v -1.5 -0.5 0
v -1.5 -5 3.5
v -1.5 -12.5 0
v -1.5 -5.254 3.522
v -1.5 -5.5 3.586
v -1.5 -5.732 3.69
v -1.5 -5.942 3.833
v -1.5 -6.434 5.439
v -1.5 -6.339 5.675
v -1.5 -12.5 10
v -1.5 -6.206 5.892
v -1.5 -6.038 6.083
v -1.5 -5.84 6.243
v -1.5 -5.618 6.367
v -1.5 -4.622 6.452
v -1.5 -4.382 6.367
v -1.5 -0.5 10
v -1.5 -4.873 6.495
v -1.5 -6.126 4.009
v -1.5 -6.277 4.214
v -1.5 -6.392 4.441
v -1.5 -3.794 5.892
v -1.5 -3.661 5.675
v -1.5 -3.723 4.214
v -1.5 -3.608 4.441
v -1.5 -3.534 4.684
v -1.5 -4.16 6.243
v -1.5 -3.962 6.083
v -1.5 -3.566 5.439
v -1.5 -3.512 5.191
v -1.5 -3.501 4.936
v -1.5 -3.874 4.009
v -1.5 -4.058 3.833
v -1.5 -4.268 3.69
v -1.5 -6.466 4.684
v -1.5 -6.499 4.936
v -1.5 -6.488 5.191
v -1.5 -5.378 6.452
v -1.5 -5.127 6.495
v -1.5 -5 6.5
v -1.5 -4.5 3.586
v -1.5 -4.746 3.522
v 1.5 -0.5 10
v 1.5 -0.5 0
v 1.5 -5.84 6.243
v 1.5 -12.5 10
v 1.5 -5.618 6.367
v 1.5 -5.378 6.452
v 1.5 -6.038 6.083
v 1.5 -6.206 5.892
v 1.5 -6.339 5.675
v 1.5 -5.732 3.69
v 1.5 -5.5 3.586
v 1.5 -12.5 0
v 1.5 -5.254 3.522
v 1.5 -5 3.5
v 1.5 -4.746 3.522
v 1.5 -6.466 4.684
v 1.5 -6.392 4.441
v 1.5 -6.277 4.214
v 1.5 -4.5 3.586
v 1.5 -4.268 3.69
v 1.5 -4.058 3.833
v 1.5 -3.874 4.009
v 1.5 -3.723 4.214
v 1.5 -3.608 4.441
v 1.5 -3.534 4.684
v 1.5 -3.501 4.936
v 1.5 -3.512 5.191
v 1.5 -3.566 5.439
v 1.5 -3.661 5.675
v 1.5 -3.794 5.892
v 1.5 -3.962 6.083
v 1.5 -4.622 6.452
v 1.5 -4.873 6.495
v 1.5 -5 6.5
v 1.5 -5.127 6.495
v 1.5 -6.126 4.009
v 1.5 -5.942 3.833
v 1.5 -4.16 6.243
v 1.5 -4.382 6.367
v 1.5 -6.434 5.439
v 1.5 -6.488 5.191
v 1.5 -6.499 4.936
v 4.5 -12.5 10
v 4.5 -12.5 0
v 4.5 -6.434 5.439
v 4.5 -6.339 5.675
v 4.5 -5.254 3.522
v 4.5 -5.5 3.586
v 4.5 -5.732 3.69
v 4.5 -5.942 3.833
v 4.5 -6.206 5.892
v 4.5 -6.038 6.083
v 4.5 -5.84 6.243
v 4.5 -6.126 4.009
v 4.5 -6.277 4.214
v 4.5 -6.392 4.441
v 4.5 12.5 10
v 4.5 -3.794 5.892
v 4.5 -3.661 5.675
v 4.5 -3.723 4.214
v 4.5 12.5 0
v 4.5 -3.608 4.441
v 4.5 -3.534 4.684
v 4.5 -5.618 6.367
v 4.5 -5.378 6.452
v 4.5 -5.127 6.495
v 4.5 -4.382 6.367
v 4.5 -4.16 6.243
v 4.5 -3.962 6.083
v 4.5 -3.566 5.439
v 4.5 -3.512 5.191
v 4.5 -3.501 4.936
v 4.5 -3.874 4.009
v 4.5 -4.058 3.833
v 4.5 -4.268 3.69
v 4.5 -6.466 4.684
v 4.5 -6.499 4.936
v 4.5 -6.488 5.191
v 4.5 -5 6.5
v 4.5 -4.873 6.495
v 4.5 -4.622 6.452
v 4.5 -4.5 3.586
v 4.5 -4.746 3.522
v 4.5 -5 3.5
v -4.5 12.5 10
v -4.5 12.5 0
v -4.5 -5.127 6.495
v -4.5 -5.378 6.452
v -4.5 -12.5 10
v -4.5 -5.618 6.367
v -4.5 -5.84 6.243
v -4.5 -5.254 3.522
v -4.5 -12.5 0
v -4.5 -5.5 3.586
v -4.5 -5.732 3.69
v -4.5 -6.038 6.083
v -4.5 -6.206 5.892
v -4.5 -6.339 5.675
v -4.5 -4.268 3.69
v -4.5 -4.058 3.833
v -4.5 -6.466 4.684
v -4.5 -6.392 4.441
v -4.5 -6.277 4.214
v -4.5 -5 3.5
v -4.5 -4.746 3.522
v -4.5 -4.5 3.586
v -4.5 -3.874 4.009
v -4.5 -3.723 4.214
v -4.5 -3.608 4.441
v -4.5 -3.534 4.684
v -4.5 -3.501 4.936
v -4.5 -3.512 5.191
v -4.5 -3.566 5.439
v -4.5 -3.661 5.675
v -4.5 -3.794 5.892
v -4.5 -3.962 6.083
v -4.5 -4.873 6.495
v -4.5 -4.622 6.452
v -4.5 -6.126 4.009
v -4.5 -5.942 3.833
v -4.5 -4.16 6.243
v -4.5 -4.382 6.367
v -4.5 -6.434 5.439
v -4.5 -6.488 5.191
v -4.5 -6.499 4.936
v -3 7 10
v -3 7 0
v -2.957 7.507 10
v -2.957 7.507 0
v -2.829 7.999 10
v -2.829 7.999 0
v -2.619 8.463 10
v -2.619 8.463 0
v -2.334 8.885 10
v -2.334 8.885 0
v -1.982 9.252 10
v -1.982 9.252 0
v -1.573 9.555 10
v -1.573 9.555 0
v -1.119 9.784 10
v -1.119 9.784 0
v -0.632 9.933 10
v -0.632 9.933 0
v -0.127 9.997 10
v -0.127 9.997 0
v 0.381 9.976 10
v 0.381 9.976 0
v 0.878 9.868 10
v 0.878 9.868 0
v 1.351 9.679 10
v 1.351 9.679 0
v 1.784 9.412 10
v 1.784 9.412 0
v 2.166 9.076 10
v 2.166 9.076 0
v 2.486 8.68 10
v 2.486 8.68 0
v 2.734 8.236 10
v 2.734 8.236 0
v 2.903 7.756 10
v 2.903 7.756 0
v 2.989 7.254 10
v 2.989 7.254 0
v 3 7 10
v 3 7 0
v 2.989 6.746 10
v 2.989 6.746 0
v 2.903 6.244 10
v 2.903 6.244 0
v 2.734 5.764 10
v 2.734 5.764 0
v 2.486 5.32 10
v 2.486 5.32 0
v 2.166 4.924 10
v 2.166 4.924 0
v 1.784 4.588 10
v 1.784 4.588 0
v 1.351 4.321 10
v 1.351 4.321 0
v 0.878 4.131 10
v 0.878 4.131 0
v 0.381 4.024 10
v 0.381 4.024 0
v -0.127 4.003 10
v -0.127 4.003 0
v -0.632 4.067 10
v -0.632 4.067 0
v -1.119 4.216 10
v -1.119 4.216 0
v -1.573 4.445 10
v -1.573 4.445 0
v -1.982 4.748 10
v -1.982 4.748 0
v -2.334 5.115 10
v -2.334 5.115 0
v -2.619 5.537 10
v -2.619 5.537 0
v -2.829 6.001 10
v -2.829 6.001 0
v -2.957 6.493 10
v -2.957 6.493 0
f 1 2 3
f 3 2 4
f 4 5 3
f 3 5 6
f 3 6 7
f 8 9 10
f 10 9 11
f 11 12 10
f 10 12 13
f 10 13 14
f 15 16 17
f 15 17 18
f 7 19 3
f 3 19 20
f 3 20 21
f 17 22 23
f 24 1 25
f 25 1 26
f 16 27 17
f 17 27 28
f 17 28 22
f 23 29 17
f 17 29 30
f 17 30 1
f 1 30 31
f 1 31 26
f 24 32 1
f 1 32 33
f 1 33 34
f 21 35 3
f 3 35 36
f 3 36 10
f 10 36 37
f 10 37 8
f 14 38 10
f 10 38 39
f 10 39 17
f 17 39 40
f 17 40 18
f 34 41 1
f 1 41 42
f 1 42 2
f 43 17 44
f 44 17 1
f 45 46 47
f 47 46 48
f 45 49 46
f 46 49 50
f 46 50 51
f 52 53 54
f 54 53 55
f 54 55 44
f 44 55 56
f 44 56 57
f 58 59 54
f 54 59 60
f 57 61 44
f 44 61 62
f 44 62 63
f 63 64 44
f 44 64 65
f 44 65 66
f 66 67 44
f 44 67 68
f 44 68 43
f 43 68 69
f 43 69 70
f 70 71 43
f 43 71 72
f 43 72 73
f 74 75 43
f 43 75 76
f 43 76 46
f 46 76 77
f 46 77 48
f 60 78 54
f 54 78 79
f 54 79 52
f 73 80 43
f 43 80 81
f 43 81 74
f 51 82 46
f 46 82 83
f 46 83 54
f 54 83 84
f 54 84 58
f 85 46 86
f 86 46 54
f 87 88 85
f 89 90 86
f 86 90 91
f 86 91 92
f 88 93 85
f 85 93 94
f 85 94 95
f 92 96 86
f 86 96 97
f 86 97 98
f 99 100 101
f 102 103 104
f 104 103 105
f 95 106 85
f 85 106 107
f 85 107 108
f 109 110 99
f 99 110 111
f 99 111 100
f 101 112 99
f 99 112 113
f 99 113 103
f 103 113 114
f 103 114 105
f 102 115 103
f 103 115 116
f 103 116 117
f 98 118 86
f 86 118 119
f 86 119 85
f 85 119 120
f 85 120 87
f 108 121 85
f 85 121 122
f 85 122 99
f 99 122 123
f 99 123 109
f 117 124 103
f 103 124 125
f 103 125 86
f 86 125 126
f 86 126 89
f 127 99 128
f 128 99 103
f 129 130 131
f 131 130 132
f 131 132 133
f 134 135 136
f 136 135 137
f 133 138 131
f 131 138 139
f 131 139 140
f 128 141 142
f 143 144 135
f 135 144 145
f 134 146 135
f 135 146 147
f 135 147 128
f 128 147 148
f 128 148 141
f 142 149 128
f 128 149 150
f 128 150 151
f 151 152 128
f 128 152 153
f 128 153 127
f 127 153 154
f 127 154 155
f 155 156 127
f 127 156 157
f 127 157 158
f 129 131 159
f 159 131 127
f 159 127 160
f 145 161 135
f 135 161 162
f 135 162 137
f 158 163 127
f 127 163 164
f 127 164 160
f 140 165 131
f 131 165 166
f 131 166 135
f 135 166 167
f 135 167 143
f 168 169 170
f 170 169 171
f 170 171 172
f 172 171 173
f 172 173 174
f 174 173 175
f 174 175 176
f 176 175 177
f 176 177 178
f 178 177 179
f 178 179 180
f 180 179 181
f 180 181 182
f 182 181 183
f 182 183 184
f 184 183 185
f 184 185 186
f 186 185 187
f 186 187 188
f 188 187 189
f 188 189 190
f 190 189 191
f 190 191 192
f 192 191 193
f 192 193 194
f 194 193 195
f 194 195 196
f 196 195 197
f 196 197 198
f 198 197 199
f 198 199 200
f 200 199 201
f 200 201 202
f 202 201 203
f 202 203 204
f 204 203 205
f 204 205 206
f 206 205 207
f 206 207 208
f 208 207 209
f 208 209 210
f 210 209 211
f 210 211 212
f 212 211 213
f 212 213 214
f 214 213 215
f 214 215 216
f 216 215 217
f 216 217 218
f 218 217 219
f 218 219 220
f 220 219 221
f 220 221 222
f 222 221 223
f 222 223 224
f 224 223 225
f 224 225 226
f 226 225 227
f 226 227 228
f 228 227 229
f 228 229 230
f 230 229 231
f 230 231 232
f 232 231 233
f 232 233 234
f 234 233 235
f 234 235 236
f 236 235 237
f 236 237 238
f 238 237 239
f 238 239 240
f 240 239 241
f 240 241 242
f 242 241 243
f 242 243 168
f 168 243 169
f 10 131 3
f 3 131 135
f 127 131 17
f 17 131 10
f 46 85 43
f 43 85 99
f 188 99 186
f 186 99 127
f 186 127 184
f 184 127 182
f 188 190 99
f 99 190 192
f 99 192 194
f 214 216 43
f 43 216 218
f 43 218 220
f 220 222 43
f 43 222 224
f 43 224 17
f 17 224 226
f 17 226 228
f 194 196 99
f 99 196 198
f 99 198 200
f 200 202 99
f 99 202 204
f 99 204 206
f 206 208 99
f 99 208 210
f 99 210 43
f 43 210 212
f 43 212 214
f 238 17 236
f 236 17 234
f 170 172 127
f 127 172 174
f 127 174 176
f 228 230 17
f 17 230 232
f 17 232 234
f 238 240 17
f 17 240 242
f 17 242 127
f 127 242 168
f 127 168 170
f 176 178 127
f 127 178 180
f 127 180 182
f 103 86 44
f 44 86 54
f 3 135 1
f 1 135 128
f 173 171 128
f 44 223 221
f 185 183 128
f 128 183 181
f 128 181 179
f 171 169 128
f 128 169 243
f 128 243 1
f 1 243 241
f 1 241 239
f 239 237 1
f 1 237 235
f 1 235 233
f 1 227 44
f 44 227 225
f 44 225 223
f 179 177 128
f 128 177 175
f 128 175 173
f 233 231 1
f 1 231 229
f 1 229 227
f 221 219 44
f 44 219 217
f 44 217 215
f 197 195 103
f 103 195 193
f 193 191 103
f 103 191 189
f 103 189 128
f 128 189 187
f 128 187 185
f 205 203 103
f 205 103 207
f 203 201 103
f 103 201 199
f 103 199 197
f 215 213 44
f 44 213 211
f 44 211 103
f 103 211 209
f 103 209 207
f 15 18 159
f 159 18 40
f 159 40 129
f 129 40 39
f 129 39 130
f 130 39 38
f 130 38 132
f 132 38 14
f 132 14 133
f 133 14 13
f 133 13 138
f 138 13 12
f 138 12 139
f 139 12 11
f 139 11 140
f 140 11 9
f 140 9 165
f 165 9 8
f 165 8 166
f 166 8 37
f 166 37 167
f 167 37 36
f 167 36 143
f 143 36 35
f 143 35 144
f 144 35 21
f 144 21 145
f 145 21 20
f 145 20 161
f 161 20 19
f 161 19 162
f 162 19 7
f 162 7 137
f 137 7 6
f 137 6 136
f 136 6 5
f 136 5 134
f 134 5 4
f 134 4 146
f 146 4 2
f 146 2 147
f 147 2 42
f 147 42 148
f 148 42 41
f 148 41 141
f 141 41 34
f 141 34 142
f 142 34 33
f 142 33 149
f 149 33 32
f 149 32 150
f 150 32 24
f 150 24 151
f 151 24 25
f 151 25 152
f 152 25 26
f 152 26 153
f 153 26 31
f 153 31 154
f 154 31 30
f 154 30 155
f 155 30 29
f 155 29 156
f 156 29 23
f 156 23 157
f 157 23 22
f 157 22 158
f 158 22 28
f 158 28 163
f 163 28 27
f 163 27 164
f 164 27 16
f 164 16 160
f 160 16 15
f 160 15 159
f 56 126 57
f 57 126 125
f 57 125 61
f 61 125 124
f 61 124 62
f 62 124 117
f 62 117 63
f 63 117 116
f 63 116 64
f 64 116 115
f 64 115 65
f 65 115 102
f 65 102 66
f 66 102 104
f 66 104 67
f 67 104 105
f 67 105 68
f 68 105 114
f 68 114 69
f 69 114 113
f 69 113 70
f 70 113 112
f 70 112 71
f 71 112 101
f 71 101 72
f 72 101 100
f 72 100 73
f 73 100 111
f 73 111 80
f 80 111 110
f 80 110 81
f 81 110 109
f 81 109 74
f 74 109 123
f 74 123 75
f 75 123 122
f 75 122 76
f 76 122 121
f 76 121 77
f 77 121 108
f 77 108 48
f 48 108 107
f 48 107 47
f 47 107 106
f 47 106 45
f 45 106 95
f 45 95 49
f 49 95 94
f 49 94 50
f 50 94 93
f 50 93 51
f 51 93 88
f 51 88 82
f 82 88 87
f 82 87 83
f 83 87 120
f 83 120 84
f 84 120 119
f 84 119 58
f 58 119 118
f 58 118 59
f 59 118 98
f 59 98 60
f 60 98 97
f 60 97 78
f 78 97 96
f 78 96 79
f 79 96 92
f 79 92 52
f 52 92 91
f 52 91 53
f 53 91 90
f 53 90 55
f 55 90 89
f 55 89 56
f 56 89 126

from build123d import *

# Parameters (mm, degrees)
BOSS_EXTRUDE1_DEPTH     = 10
SKETCH3_R               = 1.5
CUT_EXTRUDE1_DEPTH      = 1
CUT_EXTRUDE1_DEPTH_BACK = 10


with BuildPart() as part:
    # Sketch1 → Boss-Extrude1 (new body)
    with BuildSketch(Plane.XY):
        Polygon((-1.5, -0.5), (0, -0.5), (1.5, -0.5), (1.5, -12.5), (4.5, -12.5), (4.5, 12.5), (-4.5, 12.5), (-4.5, -12.5), (-1.5, -12.5), align=None)
        with BuildLine():
            ThreePointArc((3, 7), (2.121320344, 4.878679656), (0, 4))
            ThreePointArc((0, 4), (-2.121320344, 9.121320344), (3, 7))
        make_face(mode=Mode.SUBTRACT)
    extrude(amount=BOSS_EXTRUDE1_DEPTH)

    # Sketch3 → Cut-Extrude1 (cut, two sides)
    with BuildSketch(Plane(origin=(4.5, 0, 0), x_dir=(0, 0, -1), z_dir=(1, 0, 0))) as cut_extrude1_sk:
        with Locations((-5, -5)):
            Circle(SKETCH3_R)
    extrude(amount=CUT_EXTRUDE1_DEPTH, mode=Mode.SUBTRACT)
    extrude(cut_extrude1_sk.sketch, amount=-CUT_EXTRUDE1_DEPTH_BACK, mode=Mode.SUBTRACT)


solid = part.part
